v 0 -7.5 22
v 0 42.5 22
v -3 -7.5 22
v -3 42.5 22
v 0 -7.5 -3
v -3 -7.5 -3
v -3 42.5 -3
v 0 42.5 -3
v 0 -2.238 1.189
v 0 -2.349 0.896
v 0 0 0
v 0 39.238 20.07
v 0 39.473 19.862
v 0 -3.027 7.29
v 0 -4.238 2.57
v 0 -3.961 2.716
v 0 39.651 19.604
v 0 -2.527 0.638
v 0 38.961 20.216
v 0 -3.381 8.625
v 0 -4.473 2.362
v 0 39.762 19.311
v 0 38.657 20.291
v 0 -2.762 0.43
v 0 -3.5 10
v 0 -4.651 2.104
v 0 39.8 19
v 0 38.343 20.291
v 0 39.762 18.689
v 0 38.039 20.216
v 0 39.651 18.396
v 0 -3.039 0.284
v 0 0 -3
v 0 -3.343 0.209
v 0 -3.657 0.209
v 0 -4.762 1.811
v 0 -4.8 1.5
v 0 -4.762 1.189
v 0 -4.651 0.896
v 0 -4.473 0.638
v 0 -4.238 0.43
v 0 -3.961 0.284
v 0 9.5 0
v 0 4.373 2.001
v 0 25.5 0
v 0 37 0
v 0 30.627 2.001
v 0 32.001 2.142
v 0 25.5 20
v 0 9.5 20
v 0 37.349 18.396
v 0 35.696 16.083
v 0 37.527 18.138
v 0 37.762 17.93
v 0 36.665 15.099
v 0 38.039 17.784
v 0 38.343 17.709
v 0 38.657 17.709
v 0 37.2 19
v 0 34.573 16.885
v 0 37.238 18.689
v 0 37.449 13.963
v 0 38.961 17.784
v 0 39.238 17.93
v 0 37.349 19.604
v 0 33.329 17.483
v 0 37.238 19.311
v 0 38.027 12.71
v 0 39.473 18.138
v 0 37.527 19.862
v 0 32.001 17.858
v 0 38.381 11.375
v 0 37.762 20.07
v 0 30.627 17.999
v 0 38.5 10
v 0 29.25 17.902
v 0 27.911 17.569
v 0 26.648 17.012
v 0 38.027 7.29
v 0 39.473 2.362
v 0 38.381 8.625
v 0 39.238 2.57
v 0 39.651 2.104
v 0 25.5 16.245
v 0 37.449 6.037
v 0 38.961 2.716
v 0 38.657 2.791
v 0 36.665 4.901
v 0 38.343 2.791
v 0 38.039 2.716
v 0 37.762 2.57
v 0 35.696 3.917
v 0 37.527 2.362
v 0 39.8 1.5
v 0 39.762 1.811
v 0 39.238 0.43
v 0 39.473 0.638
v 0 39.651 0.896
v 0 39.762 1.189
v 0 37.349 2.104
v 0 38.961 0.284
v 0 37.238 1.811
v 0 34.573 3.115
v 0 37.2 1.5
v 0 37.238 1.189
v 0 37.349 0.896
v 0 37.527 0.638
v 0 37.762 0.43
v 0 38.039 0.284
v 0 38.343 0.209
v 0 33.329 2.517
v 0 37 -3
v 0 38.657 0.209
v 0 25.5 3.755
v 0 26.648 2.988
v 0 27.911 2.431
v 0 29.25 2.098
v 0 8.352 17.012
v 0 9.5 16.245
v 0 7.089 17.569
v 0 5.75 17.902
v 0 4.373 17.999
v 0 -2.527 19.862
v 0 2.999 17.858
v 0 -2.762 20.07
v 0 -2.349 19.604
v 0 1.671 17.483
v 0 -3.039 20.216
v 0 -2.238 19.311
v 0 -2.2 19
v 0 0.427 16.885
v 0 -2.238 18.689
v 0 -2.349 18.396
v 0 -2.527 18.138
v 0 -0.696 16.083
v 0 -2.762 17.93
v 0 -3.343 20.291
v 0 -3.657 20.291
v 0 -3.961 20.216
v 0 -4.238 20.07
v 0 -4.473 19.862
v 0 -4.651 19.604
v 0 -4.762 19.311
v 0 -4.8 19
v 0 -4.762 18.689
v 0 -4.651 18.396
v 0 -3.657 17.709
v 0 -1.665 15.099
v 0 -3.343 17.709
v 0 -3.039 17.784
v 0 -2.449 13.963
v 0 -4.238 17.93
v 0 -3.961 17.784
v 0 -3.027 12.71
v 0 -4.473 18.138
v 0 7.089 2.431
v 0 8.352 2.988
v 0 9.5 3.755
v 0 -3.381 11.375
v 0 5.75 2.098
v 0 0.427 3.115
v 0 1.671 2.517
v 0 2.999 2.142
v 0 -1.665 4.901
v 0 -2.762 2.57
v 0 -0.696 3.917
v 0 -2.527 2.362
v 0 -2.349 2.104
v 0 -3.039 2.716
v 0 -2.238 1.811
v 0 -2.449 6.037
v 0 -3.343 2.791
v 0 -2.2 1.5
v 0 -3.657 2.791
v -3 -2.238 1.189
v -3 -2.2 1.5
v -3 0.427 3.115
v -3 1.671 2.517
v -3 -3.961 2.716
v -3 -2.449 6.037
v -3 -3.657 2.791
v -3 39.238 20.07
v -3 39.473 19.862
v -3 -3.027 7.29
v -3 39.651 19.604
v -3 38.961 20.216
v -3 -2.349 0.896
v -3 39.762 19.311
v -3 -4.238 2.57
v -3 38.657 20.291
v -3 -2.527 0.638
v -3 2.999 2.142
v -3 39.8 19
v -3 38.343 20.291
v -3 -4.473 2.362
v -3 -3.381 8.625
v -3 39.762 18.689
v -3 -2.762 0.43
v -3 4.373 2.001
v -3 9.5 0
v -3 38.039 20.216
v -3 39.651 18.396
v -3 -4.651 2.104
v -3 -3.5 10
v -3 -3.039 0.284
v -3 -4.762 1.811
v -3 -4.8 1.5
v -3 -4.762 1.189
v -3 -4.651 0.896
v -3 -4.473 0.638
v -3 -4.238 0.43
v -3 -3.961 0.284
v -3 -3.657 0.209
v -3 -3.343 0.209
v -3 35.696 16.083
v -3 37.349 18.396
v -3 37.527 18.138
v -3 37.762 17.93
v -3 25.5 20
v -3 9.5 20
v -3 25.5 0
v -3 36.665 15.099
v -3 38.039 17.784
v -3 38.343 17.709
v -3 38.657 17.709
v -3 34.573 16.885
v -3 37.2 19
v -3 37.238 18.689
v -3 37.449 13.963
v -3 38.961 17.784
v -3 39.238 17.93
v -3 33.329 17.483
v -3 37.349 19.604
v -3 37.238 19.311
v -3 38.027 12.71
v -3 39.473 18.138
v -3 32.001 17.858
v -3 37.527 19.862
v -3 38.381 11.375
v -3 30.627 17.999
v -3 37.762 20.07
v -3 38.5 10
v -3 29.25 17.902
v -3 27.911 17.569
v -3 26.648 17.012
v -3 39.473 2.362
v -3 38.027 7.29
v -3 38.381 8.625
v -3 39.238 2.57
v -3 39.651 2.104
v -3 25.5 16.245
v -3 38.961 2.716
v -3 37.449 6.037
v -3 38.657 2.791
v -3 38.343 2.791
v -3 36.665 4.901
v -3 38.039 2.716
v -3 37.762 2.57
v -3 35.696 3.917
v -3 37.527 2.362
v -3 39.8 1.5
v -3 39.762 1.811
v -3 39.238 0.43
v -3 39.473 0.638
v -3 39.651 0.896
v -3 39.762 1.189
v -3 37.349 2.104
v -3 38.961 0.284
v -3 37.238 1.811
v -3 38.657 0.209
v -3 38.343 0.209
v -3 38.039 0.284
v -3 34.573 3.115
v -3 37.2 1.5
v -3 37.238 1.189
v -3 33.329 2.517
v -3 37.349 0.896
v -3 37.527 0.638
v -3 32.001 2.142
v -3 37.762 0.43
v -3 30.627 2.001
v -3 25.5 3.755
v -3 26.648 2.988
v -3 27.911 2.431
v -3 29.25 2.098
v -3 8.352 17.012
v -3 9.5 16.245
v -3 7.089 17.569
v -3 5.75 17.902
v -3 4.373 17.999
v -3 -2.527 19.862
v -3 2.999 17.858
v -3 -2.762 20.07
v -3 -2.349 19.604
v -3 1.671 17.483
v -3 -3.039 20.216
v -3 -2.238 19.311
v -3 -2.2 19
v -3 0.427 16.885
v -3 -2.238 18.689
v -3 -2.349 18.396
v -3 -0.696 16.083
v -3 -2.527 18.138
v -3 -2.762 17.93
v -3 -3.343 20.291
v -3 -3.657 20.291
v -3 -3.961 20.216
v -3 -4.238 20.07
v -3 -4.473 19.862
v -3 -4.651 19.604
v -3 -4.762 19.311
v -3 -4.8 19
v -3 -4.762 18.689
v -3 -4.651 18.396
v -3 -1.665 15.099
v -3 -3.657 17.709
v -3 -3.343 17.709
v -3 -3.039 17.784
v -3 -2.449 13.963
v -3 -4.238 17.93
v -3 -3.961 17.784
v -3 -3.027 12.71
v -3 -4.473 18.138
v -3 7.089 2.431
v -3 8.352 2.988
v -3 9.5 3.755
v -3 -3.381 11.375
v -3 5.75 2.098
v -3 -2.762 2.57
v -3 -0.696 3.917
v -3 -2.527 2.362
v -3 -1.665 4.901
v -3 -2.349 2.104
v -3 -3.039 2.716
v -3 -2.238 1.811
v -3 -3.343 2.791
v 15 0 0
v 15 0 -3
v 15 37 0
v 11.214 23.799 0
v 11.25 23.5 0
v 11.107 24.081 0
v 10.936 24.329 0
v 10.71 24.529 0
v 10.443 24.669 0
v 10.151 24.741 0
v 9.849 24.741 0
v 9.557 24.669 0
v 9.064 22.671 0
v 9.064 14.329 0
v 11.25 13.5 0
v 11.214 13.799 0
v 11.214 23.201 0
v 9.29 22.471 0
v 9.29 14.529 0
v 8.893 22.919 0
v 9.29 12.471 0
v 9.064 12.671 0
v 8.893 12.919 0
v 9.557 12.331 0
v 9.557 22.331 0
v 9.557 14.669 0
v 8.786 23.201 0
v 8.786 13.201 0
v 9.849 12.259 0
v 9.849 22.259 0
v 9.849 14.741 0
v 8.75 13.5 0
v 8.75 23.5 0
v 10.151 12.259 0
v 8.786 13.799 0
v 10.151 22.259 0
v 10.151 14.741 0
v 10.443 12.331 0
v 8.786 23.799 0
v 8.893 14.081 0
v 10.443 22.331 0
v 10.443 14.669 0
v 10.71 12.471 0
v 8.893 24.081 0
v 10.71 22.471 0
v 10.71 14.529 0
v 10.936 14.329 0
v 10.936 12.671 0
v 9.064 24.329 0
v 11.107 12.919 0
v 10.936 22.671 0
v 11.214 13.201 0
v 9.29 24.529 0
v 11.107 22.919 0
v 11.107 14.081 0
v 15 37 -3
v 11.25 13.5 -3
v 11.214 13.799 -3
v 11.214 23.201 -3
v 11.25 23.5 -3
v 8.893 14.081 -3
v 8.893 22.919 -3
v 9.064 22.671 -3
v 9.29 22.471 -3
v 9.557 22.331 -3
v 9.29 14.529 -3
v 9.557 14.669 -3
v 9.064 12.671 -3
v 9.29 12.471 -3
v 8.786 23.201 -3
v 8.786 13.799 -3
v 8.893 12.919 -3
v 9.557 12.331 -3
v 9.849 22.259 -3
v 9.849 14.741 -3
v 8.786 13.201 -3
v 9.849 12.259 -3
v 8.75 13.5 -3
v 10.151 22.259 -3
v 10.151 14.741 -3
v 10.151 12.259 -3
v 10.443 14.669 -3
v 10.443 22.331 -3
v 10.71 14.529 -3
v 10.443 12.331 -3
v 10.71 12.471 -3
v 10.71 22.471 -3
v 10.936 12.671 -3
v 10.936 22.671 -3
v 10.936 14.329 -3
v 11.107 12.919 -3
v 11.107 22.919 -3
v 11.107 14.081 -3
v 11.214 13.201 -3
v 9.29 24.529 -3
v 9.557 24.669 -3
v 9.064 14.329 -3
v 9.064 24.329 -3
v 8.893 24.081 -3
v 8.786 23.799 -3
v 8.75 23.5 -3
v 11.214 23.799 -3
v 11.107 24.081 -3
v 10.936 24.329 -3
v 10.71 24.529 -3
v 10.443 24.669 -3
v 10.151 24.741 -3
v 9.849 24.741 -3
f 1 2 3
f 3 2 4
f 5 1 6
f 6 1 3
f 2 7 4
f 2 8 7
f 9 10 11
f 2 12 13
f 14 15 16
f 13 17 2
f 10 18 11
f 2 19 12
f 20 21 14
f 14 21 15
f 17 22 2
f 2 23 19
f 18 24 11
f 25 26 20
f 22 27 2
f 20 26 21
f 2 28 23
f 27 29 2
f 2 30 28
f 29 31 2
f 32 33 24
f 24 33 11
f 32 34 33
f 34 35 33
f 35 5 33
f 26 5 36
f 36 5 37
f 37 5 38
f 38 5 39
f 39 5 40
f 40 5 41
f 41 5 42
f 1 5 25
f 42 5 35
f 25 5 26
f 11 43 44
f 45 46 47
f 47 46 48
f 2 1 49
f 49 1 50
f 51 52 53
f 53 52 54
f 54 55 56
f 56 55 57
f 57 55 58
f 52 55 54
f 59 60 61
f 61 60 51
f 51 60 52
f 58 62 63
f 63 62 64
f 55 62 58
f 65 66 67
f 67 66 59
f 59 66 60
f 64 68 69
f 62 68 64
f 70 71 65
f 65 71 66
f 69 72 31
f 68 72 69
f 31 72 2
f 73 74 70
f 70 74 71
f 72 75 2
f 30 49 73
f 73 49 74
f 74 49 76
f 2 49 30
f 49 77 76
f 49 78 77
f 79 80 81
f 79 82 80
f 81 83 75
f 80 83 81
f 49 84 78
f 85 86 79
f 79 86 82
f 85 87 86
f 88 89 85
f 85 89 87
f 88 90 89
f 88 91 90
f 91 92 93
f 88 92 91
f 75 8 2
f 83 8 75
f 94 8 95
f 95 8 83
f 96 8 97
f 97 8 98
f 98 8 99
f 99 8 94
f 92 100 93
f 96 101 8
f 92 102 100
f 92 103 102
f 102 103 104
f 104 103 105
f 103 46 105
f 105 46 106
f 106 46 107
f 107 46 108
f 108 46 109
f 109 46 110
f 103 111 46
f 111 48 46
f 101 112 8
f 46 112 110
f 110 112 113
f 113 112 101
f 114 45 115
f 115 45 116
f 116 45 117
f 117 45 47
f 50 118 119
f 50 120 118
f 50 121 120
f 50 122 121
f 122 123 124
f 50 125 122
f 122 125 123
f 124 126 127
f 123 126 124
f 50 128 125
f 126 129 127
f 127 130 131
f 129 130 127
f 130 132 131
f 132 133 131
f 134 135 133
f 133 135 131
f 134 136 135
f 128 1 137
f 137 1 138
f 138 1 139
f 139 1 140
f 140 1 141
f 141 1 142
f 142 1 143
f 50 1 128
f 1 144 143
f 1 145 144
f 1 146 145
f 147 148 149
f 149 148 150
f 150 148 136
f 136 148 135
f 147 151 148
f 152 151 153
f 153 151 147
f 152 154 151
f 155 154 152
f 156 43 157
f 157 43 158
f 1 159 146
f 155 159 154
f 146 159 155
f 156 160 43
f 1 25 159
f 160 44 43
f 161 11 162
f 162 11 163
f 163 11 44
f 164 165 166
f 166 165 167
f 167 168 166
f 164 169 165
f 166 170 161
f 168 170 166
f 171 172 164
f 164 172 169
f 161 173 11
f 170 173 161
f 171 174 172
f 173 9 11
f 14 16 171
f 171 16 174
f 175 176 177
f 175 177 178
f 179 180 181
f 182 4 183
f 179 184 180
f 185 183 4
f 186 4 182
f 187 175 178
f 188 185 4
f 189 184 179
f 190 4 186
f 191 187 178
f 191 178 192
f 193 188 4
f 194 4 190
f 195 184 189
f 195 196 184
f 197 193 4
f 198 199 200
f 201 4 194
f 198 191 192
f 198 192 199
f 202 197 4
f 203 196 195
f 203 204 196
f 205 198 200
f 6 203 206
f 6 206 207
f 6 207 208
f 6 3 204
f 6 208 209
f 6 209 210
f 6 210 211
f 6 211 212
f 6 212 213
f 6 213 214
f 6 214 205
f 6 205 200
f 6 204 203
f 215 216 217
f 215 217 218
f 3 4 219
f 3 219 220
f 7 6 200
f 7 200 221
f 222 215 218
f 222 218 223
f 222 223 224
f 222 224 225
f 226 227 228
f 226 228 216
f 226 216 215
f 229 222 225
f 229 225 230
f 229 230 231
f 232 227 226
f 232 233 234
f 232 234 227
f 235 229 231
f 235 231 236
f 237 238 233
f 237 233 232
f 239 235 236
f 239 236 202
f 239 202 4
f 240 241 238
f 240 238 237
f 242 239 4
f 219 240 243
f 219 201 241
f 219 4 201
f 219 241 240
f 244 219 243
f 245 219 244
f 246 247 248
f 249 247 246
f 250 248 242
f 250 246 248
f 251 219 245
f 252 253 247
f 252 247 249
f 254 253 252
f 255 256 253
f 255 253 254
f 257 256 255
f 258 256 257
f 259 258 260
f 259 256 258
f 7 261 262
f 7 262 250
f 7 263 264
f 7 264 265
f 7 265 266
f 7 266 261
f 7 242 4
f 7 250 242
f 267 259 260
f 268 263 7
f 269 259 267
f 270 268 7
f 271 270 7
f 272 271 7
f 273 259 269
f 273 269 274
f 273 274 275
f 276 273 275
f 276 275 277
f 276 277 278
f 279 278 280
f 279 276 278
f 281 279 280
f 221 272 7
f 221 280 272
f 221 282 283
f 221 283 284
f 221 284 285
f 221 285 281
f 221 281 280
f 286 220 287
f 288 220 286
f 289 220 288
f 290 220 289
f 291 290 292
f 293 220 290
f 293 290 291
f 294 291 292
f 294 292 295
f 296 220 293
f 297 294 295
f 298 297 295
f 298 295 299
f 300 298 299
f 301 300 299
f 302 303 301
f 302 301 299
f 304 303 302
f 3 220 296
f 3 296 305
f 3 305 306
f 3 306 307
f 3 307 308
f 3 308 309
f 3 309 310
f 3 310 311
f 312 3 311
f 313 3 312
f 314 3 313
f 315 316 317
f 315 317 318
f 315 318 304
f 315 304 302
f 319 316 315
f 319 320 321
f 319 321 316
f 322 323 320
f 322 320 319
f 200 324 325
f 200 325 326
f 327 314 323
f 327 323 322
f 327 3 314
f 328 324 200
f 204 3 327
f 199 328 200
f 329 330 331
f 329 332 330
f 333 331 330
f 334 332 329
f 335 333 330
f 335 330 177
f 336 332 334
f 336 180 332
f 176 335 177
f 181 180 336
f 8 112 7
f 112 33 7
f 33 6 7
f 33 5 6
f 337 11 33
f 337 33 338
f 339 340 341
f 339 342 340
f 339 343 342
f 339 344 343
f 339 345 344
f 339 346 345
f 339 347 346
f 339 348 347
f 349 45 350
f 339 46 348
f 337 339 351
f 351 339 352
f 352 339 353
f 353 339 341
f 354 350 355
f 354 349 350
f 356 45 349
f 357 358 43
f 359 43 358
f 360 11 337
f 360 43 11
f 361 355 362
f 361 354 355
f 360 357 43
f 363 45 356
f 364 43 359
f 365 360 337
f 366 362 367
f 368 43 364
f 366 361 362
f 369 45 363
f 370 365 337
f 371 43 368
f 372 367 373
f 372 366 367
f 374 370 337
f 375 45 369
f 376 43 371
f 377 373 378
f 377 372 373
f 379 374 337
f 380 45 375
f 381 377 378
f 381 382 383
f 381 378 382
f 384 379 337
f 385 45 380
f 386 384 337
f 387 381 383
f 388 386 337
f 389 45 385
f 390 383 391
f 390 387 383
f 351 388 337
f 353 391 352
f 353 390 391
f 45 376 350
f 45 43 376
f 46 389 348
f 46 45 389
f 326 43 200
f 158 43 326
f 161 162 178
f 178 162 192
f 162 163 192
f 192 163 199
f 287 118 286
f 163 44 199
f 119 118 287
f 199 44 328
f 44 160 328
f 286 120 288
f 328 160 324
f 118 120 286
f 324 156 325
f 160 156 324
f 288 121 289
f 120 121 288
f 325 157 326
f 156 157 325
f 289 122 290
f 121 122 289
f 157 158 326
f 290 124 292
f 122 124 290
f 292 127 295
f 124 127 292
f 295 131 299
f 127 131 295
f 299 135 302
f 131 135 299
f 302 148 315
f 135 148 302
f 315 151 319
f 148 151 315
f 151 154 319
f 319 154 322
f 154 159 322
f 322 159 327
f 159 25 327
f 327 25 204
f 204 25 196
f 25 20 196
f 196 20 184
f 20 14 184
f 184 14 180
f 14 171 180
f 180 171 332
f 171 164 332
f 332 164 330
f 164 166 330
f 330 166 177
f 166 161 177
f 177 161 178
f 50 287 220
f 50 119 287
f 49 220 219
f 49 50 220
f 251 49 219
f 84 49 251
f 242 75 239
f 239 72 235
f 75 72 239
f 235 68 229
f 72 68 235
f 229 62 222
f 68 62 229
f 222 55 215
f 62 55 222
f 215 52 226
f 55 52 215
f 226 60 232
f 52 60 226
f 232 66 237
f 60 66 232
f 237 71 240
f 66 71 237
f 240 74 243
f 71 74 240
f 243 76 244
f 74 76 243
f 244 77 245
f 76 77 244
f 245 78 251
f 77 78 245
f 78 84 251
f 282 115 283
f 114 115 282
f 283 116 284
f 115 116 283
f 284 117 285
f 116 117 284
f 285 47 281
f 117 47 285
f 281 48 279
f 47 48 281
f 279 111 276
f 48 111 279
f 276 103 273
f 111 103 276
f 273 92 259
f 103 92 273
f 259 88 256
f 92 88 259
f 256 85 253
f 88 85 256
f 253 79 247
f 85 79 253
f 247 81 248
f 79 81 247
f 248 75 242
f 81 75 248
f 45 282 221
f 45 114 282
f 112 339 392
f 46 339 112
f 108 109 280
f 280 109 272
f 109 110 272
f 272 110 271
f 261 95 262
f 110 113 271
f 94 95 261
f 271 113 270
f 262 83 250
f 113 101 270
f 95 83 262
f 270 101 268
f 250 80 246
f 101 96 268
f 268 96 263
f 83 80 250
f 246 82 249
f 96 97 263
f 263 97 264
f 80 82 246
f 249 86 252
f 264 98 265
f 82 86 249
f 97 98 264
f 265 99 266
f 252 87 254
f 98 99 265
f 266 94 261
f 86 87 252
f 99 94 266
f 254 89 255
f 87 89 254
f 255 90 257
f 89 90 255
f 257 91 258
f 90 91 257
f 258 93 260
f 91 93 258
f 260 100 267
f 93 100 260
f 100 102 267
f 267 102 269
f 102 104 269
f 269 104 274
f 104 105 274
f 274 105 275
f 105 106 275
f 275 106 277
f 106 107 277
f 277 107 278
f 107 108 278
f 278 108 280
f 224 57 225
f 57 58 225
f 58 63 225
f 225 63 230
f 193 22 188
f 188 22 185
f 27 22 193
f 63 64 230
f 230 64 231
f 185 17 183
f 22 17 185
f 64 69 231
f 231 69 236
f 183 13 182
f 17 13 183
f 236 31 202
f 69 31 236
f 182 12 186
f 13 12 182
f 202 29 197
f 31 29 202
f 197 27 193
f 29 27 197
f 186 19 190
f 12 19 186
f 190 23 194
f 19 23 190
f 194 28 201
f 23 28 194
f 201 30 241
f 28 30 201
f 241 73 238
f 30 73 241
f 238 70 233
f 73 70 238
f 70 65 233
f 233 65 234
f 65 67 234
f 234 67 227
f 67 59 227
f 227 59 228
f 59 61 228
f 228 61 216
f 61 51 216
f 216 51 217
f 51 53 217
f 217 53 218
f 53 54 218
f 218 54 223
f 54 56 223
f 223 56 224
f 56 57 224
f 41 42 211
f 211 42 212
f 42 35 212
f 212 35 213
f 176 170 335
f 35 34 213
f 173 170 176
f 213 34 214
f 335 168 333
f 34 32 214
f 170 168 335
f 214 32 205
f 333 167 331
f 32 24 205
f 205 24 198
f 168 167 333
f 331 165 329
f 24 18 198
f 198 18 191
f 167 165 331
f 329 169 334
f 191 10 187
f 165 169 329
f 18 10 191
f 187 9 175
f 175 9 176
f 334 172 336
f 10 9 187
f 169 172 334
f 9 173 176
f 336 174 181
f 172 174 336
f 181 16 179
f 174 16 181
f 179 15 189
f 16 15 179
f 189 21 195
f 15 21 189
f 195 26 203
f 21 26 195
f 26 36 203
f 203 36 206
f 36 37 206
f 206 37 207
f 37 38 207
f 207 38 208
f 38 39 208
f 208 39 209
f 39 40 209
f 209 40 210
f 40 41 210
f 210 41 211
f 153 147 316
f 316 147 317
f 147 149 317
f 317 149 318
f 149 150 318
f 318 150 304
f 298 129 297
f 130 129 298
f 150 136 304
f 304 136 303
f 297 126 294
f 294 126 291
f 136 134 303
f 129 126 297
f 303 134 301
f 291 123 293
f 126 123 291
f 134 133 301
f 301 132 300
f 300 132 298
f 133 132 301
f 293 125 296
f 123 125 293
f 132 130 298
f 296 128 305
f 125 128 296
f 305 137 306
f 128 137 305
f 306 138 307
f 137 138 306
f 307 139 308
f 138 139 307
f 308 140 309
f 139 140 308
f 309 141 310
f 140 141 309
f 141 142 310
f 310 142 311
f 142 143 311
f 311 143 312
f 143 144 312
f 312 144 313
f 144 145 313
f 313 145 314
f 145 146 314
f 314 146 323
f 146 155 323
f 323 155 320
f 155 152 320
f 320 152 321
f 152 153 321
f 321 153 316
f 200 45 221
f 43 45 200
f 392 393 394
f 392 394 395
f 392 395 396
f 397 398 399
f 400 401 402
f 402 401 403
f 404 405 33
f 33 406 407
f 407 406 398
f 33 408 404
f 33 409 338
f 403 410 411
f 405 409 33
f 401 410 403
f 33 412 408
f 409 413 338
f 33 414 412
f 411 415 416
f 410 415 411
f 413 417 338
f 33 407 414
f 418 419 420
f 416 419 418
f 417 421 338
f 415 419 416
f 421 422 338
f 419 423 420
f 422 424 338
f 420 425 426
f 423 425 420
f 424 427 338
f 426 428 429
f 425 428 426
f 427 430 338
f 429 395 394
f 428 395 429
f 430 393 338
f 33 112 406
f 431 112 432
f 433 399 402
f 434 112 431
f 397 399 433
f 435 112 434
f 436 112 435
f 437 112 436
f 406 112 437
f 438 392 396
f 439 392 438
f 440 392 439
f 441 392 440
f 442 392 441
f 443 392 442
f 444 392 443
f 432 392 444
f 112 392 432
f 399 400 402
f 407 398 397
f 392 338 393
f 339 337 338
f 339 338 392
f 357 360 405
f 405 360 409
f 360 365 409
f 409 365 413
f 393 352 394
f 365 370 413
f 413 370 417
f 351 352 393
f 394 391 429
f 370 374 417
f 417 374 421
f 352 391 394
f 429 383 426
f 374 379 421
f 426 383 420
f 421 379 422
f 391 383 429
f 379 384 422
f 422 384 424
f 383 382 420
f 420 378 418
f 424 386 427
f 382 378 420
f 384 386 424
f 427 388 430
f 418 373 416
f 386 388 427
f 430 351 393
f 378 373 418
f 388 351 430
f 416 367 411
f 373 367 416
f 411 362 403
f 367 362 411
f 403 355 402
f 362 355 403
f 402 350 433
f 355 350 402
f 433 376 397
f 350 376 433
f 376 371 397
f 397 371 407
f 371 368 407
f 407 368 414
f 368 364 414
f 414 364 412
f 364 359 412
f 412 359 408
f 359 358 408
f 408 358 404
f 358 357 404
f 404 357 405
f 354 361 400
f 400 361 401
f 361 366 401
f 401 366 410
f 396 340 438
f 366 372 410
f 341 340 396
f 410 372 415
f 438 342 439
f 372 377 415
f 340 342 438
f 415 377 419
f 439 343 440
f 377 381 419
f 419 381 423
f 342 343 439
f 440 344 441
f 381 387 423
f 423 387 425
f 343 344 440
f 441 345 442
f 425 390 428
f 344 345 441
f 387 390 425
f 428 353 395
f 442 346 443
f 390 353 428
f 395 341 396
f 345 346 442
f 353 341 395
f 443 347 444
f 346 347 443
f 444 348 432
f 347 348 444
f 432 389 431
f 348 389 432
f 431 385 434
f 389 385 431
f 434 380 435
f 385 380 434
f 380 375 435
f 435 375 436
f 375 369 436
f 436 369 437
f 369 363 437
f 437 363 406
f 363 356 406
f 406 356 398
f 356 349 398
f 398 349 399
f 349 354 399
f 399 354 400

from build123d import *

# Parameters (mm, degrees)
SKETCH002_W     = 50
SKETCH002_H     = 25
PAD_DEPTH       = 3
SKETCH003_R     = 8
SKETCH003_R_2   = 1.3
POCKET_DEPTH    = 3.001
SKETCH004_W     = 16
SKETCH004_H     = 20
POCKET001_DEPTH = 3.001
SKETCH_W        = 15
SKETCH_H        = 37
PAD001_DEPTH    = 3
SKETCH001_R     = 1.25
POCKET002_DEPTH = 3.001


with BuildPart() as part:
    # Sketch002 → Pad (new body)
    with BuildSketch(Plane.YZ):
        with Locations((17.5, 9.5)):
            Rectangle(SKETCH002_W, SKETCH002_H)
    extrude(amount=-PAD_DEPTH)

    # Sketch003 → Pocket (cut, through all)
    with BuildSketch(Plane.YZ):
        with Locations((4.5, 10)):
            Circle(SKETCH003_R)
        with Locations((30.5, 10)):
            Circle(SKETCH003_R)
        with Locations((-3.5, 19)):
            Circle(SKETCH003_R_2)
        with Locations((38.5, 19)):
            Circle(SKETCH003_R_2)
        with Locations((38.5, 1.5)):
            Circle(SKETCH003_R_2)
        with Locations((-3.5, 1.5)):
            Circle(SKETCH003_R_2)
    extrude(amount=-POCKET_DEPTH, mode=Mode.SUBTRACT)

    # Sketch004 → Pocket001 (cut, through all)
    with BuildSketch(Plane.YZ):
        with Locations((17.5, 10)):
            Rectangle(SKETCH004_W, SKETCH004_H)
    extrude(amount=-POCKET001_DEPTH, mode=Mode.SUBTRACT)

    # Sketch → Pad001 (join)
    with BuildSketch(Plane.XY):
        with Locations((7.5, 18.5)):
            Rectangle(SKETCH_W, SKETCH_H)
    extrude(amount=-PAD001_DEPTH)

    # Sketch001 → Pocket002 (cut, through all)
    with BuildSketch(Plane.XY):
        with Locations((10, 23.5)):
            Circle(SKETCH001_R)
        with Locations((10, 13.5)):
            Circle(SKETCH001_R)
    extrude(amount=-POCKET002_DEPTH, mode=Mode.SUBTRACT)


solid = part.part
